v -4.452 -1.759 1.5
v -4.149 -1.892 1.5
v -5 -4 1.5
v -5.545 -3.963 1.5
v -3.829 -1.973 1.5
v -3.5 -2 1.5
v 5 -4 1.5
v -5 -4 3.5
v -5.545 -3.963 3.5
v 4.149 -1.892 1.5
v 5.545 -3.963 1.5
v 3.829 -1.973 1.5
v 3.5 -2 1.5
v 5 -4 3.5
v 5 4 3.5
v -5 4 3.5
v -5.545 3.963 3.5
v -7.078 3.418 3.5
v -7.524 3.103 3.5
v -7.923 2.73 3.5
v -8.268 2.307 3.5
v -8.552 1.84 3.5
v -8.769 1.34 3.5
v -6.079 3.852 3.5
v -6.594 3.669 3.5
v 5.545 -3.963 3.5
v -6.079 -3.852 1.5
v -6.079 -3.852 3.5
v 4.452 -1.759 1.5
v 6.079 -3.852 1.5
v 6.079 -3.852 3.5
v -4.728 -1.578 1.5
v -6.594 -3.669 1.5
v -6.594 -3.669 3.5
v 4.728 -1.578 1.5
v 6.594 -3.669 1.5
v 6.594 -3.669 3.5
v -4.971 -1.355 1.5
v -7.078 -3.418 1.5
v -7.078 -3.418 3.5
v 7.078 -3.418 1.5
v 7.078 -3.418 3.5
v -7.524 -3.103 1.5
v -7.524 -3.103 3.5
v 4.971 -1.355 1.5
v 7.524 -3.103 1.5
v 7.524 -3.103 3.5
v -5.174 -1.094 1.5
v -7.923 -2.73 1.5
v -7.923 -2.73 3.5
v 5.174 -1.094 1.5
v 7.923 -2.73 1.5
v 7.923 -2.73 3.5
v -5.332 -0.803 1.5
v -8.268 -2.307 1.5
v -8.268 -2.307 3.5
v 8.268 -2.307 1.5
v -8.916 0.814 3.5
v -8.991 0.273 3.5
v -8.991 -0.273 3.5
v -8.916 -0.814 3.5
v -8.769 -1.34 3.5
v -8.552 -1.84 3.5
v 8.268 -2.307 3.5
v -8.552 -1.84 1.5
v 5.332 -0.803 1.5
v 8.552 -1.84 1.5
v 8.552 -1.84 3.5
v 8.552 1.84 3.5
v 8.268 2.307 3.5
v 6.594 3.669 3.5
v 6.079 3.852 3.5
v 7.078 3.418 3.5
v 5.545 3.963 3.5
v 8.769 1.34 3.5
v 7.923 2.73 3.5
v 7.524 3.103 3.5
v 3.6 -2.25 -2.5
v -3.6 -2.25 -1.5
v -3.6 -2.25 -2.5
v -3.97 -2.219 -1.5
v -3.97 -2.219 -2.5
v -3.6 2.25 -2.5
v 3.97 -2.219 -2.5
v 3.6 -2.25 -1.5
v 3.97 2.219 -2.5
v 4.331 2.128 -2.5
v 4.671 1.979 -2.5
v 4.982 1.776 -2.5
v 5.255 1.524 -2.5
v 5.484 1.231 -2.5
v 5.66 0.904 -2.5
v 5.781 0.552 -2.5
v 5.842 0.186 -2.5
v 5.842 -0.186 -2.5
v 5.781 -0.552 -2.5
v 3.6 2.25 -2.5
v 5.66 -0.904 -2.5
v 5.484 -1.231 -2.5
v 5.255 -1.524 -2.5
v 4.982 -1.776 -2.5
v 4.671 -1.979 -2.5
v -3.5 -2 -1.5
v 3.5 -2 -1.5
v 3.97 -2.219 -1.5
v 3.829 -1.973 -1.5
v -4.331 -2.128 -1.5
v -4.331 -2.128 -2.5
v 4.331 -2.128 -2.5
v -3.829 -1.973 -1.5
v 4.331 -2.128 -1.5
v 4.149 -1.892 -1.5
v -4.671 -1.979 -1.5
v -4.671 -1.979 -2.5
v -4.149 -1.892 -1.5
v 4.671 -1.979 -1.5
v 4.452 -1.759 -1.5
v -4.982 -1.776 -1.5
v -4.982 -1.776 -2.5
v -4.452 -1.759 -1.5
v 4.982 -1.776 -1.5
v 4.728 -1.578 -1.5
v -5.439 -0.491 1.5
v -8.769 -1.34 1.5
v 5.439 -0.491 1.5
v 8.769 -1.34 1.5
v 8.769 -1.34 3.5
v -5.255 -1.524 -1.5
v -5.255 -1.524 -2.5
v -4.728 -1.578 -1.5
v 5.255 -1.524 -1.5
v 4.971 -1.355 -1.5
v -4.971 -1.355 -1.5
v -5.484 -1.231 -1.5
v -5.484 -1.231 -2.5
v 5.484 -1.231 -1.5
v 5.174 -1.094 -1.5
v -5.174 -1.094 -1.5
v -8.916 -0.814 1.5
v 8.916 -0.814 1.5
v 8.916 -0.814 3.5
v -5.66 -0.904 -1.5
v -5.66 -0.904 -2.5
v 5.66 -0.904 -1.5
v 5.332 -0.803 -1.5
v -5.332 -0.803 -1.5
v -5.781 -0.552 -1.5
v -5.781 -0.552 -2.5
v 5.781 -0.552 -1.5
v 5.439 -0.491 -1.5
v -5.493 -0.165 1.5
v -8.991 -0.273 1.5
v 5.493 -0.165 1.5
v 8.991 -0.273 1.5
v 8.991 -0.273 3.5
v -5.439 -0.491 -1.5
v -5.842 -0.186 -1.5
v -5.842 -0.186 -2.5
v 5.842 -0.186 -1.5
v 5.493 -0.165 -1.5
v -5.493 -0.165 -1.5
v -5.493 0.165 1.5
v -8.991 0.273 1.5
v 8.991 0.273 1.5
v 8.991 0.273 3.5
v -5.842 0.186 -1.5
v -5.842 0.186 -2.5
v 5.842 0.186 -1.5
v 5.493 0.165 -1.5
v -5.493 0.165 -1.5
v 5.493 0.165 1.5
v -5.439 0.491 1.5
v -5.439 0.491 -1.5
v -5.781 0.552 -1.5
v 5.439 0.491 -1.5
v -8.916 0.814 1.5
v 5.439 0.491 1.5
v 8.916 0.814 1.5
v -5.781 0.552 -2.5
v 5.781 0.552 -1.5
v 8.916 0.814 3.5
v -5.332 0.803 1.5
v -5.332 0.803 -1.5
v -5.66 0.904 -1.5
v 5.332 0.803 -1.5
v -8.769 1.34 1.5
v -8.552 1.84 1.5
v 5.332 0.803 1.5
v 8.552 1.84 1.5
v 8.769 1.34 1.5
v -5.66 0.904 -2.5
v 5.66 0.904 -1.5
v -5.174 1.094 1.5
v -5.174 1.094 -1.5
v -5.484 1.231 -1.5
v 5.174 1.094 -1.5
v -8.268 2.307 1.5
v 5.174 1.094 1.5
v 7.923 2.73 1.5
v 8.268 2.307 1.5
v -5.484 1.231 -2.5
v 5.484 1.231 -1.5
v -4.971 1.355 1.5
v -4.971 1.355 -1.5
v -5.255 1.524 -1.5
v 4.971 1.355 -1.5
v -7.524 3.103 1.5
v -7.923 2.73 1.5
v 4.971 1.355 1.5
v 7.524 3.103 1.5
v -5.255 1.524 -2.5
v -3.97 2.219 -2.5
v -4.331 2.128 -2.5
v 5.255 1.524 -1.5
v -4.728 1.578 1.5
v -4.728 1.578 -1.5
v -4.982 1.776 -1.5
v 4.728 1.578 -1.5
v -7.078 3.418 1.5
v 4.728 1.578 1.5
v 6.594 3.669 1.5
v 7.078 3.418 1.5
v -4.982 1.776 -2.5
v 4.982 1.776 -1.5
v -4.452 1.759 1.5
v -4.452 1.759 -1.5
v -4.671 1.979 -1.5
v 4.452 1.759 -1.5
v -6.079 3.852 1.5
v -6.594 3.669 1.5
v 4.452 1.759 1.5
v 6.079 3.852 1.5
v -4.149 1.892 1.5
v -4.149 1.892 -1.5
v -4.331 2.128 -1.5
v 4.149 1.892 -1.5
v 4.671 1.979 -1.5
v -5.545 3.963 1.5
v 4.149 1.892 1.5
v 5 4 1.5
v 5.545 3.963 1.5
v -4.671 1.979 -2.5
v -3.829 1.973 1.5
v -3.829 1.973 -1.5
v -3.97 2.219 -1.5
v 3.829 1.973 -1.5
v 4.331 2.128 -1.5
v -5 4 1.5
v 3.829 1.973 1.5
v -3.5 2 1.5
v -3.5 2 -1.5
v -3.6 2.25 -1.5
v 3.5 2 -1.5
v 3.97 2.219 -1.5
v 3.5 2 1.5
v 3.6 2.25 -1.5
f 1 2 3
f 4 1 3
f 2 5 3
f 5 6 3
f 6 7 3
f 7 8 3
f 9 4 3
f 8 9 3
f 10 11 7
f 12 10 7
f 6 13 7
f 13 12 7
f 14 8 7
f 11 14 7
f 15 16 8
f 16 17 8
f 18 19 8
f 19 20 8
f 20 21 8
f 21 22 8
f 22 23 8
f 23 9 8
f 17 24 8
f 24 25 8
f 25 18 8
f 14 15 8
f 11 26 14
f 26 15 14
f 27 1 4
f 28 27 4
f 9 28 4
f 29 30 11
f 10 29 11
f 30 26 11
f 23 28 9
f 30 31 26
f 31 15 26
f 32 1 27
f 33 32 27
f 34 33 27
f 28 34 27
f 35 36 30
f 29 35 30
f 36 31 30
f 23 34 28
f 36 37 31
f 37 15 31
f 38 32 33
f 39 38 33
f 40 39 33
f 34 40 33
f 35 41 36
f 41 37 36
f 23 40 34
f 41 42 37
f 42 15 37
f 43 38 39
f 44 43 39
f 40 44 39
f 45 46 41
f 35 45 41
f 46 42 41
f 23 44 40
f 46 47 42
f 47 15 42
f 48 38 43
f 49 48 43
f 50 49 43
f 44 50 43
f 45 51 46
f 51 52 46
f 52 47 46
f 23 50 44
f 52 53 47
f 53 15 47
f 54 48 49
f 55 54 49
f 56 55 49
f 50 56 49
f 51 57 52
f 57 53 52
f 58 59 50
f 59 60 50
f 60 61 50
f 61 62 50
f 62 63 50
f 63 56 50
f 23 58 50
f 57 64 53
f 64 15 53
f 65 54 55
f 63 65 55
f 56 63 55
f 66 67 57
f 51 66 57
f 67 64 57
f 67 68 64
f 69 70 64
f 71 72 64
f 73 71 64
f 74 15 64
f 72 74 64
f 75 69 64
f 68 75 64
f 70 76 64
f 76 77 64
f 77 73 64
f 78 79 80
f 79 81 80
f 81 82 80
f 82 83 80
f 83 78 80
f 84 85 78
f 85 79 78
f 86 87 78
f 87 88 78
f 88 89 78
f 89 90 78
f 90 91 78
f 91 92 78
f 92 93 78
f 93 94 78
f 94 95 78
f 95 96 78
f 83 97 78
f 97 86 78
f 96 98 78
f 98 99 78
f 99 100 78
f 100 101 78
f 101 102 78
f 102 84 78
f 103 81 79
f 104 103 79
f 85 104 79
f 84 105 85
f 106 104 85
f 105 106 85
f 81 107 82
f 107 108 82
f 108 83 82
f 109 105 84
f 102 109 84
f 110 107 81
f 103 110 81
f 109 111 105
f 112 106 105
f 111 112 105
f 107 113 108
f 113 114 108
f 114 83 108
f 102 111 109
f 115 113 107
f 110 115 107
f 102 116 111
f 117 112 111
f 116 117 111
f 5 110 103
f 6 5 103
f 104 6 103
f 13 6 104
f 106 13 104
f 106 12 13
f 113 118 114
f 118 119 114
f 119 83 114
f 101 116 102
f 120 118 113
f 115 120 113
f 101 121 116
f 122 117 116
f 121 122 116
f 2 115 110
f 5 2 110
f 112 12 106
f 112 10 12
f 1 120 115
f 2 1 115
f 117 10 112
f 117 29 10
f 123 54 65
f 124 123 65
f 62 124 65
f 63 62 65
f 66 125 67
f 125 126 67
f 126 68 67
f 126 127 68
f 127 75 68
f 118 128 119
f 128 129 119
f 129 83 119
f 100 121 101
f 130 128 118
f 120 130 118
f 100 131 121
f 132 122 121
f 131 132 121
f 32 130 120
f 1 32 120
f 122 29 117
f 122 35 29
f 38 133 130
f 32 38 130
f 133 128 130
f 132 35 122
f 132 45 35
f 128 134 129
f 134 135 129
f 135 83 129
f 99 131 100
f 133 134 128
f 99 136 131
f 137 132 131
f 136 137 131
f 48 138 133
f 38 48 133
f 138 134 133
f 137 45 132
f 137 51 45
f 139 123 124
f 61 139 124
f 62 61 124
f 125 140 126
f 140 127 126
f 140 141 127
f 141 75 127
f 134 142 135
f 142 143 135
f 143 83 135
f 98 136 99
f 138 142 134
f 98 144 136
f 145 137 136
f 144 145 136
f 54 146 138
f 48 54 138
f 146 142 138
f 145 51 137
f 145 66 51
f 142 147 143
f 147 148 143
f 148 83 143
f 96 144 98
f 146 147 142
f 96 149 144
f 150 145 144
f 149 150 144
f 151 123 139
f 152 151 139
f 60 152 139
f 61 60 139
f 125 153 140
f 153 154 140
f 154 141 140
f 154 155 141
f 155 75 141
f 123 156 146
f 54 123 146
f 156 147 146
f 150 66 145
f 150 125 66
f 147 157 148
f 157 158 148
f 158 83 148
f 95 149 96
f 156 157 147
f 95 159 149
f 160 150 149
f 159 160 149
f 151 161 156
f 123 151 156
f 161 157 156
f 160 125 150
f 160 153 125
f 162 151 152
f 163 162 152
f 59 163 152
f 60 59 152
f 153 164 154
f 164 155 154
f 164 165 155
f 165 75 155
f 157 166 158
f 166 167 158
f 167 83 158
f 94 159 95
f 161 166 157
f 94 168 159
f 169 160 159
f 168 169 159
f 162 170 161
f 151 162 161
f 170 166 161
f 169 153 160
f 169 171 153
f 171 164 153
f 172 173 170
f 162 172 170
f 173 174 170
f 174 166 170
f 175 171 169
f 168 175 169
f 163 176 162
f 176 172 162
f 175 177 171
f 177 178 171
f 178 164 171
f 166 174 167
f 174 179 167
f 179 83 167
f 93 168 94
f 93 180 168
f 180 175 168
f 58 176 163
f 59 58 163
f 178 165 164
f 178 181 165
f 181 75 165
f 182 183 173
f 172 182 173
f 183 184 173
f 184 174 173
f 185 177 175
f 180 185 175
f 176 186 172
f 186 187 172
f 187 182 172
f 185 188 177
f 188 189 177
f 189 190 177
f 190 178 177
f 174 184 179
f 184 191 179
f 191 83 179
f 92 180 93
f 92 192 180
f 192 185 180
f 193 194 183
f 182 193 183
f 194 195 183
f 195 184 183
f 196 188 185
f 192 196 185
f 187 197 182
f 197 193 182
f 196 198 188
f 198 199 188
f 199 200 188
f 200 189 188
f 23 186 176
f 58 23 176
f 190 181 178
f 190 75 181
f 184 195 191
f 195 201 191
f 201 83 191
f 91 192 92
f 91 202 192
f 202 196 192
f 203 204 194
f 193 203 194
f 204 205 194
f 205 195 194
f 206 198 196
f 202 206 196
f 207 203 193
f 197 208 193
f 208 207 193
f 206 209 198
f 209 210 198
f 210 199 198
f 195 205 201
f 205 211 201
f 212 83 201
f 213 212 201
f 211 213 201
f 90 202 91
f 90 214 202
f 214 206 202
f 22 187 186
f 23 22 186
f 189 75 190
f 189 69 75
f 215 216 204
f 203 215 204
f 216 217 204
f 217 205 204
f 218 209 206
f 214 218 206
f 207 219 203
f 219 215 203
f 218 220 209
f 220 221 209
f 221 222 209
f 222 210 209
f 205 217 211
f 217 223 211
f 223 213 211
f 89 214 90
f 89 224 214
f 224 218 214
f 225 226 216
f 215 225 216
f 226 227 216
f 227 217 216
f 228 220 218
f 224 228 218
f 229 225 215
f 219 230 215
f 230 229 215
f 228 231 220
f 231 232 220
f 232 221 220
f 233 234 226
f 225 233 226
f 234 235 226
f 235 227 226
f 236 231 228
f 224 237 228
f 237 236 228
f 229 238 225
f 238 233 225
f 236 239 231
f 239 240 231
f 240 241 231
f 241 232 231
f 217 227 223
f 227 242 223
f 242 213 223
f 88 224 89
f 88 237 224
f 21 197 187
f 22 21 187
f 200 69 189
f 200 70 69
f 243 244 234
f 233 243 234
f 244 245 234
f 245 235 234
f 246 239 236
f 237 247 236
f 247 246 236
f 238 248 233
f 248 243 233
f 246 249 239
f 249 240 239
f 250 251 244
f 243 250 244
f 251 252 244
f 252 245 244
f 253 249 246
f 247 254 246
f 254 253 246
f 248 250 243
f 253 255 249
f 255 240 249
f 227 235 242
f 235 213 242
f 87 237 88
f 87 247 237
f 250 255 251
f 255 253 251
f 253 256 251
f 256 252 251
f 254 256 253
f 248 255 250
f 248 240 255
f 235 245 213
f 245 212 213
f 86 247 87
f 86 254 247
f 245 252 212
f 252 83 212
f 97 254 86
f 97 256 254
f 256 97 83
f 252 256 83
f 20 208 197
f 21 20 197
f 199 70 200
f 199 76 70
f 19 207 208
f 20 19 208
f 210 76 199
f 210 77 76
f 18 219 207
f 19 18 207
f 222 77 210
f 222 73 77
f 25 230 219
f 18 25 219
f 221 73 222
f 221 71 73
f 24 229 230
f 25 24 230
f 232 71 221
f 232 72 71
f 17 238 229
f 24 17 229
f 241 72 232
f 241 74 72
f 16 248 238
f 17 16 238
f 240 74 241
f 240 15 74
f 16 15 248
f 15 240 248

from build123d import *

# Parameters (mm, degrees)
BOSS_EXTRU_1_DEPTH = 1.5
BOSS_EXTRU_2_START = 1.5
BOSS_EXTRU_2_DEPTH = 2
BOSS_EXTRU_3_DEPTH = 1


with BuildPart() as part:
    # Esquisse1 → Boss.-Extru.1 (new, symmetric)
    with BuildSketch(Plane.XY):
        with BuildLine():
            Line((-3.5, 2), (3.5, 2))
            ThreePointArc((3.5, 2), (5.5, 0), (3.5, -2))
            Line((3.5, -2), (-3.5, -2))
            ThreePointArc((-3.5, -2), (-5.5, 0), (-3.5, 2))
        make_face()
    extrude(amount=BOSS_EXTRU_1_DEPTH, both=True)

    # Esquisse2 → Boss.-Extru.2 (add)
    with BuildSketch(Plane.XY.offset(BOSS_EXTRU_2_START)):
        with BuildLine():
            Line((-5, 4), (5, 4))
            ThreePointArc((5, 4), (9, 0), (5, -4))
            Line((5, -4), (-5, -4))
            ThreePointArc((-5, -4), (-9, 0), (-5, 4))
        make_face()
    extrude(amount=BOSS_EXTRU_2_DEPTH)

    # Esquisse3 → Boss.-Extru.3 (add)
    with BuildSketch(Plane(origin=(0, 0, -1.5), x_dir=(-1, 0, 0), z_dir=(0, 0, -1))):
        with BuildLine():
            Line((-3.6, 2.25), (3.6, 2.25))
            ThreePointArc((3.6, 2.25), (5.85, 0), (3.6, -2.25))
            Line((3.6, -2.25), (-3.6, -2.25))
            ThreePointArc((-3.6, -2.25), (-5.85, 0), (-3.6, 2.25))
        make_face()
    extrude(amount=BOSS_EXTRU_3_DEPTH)


solid = part.part
